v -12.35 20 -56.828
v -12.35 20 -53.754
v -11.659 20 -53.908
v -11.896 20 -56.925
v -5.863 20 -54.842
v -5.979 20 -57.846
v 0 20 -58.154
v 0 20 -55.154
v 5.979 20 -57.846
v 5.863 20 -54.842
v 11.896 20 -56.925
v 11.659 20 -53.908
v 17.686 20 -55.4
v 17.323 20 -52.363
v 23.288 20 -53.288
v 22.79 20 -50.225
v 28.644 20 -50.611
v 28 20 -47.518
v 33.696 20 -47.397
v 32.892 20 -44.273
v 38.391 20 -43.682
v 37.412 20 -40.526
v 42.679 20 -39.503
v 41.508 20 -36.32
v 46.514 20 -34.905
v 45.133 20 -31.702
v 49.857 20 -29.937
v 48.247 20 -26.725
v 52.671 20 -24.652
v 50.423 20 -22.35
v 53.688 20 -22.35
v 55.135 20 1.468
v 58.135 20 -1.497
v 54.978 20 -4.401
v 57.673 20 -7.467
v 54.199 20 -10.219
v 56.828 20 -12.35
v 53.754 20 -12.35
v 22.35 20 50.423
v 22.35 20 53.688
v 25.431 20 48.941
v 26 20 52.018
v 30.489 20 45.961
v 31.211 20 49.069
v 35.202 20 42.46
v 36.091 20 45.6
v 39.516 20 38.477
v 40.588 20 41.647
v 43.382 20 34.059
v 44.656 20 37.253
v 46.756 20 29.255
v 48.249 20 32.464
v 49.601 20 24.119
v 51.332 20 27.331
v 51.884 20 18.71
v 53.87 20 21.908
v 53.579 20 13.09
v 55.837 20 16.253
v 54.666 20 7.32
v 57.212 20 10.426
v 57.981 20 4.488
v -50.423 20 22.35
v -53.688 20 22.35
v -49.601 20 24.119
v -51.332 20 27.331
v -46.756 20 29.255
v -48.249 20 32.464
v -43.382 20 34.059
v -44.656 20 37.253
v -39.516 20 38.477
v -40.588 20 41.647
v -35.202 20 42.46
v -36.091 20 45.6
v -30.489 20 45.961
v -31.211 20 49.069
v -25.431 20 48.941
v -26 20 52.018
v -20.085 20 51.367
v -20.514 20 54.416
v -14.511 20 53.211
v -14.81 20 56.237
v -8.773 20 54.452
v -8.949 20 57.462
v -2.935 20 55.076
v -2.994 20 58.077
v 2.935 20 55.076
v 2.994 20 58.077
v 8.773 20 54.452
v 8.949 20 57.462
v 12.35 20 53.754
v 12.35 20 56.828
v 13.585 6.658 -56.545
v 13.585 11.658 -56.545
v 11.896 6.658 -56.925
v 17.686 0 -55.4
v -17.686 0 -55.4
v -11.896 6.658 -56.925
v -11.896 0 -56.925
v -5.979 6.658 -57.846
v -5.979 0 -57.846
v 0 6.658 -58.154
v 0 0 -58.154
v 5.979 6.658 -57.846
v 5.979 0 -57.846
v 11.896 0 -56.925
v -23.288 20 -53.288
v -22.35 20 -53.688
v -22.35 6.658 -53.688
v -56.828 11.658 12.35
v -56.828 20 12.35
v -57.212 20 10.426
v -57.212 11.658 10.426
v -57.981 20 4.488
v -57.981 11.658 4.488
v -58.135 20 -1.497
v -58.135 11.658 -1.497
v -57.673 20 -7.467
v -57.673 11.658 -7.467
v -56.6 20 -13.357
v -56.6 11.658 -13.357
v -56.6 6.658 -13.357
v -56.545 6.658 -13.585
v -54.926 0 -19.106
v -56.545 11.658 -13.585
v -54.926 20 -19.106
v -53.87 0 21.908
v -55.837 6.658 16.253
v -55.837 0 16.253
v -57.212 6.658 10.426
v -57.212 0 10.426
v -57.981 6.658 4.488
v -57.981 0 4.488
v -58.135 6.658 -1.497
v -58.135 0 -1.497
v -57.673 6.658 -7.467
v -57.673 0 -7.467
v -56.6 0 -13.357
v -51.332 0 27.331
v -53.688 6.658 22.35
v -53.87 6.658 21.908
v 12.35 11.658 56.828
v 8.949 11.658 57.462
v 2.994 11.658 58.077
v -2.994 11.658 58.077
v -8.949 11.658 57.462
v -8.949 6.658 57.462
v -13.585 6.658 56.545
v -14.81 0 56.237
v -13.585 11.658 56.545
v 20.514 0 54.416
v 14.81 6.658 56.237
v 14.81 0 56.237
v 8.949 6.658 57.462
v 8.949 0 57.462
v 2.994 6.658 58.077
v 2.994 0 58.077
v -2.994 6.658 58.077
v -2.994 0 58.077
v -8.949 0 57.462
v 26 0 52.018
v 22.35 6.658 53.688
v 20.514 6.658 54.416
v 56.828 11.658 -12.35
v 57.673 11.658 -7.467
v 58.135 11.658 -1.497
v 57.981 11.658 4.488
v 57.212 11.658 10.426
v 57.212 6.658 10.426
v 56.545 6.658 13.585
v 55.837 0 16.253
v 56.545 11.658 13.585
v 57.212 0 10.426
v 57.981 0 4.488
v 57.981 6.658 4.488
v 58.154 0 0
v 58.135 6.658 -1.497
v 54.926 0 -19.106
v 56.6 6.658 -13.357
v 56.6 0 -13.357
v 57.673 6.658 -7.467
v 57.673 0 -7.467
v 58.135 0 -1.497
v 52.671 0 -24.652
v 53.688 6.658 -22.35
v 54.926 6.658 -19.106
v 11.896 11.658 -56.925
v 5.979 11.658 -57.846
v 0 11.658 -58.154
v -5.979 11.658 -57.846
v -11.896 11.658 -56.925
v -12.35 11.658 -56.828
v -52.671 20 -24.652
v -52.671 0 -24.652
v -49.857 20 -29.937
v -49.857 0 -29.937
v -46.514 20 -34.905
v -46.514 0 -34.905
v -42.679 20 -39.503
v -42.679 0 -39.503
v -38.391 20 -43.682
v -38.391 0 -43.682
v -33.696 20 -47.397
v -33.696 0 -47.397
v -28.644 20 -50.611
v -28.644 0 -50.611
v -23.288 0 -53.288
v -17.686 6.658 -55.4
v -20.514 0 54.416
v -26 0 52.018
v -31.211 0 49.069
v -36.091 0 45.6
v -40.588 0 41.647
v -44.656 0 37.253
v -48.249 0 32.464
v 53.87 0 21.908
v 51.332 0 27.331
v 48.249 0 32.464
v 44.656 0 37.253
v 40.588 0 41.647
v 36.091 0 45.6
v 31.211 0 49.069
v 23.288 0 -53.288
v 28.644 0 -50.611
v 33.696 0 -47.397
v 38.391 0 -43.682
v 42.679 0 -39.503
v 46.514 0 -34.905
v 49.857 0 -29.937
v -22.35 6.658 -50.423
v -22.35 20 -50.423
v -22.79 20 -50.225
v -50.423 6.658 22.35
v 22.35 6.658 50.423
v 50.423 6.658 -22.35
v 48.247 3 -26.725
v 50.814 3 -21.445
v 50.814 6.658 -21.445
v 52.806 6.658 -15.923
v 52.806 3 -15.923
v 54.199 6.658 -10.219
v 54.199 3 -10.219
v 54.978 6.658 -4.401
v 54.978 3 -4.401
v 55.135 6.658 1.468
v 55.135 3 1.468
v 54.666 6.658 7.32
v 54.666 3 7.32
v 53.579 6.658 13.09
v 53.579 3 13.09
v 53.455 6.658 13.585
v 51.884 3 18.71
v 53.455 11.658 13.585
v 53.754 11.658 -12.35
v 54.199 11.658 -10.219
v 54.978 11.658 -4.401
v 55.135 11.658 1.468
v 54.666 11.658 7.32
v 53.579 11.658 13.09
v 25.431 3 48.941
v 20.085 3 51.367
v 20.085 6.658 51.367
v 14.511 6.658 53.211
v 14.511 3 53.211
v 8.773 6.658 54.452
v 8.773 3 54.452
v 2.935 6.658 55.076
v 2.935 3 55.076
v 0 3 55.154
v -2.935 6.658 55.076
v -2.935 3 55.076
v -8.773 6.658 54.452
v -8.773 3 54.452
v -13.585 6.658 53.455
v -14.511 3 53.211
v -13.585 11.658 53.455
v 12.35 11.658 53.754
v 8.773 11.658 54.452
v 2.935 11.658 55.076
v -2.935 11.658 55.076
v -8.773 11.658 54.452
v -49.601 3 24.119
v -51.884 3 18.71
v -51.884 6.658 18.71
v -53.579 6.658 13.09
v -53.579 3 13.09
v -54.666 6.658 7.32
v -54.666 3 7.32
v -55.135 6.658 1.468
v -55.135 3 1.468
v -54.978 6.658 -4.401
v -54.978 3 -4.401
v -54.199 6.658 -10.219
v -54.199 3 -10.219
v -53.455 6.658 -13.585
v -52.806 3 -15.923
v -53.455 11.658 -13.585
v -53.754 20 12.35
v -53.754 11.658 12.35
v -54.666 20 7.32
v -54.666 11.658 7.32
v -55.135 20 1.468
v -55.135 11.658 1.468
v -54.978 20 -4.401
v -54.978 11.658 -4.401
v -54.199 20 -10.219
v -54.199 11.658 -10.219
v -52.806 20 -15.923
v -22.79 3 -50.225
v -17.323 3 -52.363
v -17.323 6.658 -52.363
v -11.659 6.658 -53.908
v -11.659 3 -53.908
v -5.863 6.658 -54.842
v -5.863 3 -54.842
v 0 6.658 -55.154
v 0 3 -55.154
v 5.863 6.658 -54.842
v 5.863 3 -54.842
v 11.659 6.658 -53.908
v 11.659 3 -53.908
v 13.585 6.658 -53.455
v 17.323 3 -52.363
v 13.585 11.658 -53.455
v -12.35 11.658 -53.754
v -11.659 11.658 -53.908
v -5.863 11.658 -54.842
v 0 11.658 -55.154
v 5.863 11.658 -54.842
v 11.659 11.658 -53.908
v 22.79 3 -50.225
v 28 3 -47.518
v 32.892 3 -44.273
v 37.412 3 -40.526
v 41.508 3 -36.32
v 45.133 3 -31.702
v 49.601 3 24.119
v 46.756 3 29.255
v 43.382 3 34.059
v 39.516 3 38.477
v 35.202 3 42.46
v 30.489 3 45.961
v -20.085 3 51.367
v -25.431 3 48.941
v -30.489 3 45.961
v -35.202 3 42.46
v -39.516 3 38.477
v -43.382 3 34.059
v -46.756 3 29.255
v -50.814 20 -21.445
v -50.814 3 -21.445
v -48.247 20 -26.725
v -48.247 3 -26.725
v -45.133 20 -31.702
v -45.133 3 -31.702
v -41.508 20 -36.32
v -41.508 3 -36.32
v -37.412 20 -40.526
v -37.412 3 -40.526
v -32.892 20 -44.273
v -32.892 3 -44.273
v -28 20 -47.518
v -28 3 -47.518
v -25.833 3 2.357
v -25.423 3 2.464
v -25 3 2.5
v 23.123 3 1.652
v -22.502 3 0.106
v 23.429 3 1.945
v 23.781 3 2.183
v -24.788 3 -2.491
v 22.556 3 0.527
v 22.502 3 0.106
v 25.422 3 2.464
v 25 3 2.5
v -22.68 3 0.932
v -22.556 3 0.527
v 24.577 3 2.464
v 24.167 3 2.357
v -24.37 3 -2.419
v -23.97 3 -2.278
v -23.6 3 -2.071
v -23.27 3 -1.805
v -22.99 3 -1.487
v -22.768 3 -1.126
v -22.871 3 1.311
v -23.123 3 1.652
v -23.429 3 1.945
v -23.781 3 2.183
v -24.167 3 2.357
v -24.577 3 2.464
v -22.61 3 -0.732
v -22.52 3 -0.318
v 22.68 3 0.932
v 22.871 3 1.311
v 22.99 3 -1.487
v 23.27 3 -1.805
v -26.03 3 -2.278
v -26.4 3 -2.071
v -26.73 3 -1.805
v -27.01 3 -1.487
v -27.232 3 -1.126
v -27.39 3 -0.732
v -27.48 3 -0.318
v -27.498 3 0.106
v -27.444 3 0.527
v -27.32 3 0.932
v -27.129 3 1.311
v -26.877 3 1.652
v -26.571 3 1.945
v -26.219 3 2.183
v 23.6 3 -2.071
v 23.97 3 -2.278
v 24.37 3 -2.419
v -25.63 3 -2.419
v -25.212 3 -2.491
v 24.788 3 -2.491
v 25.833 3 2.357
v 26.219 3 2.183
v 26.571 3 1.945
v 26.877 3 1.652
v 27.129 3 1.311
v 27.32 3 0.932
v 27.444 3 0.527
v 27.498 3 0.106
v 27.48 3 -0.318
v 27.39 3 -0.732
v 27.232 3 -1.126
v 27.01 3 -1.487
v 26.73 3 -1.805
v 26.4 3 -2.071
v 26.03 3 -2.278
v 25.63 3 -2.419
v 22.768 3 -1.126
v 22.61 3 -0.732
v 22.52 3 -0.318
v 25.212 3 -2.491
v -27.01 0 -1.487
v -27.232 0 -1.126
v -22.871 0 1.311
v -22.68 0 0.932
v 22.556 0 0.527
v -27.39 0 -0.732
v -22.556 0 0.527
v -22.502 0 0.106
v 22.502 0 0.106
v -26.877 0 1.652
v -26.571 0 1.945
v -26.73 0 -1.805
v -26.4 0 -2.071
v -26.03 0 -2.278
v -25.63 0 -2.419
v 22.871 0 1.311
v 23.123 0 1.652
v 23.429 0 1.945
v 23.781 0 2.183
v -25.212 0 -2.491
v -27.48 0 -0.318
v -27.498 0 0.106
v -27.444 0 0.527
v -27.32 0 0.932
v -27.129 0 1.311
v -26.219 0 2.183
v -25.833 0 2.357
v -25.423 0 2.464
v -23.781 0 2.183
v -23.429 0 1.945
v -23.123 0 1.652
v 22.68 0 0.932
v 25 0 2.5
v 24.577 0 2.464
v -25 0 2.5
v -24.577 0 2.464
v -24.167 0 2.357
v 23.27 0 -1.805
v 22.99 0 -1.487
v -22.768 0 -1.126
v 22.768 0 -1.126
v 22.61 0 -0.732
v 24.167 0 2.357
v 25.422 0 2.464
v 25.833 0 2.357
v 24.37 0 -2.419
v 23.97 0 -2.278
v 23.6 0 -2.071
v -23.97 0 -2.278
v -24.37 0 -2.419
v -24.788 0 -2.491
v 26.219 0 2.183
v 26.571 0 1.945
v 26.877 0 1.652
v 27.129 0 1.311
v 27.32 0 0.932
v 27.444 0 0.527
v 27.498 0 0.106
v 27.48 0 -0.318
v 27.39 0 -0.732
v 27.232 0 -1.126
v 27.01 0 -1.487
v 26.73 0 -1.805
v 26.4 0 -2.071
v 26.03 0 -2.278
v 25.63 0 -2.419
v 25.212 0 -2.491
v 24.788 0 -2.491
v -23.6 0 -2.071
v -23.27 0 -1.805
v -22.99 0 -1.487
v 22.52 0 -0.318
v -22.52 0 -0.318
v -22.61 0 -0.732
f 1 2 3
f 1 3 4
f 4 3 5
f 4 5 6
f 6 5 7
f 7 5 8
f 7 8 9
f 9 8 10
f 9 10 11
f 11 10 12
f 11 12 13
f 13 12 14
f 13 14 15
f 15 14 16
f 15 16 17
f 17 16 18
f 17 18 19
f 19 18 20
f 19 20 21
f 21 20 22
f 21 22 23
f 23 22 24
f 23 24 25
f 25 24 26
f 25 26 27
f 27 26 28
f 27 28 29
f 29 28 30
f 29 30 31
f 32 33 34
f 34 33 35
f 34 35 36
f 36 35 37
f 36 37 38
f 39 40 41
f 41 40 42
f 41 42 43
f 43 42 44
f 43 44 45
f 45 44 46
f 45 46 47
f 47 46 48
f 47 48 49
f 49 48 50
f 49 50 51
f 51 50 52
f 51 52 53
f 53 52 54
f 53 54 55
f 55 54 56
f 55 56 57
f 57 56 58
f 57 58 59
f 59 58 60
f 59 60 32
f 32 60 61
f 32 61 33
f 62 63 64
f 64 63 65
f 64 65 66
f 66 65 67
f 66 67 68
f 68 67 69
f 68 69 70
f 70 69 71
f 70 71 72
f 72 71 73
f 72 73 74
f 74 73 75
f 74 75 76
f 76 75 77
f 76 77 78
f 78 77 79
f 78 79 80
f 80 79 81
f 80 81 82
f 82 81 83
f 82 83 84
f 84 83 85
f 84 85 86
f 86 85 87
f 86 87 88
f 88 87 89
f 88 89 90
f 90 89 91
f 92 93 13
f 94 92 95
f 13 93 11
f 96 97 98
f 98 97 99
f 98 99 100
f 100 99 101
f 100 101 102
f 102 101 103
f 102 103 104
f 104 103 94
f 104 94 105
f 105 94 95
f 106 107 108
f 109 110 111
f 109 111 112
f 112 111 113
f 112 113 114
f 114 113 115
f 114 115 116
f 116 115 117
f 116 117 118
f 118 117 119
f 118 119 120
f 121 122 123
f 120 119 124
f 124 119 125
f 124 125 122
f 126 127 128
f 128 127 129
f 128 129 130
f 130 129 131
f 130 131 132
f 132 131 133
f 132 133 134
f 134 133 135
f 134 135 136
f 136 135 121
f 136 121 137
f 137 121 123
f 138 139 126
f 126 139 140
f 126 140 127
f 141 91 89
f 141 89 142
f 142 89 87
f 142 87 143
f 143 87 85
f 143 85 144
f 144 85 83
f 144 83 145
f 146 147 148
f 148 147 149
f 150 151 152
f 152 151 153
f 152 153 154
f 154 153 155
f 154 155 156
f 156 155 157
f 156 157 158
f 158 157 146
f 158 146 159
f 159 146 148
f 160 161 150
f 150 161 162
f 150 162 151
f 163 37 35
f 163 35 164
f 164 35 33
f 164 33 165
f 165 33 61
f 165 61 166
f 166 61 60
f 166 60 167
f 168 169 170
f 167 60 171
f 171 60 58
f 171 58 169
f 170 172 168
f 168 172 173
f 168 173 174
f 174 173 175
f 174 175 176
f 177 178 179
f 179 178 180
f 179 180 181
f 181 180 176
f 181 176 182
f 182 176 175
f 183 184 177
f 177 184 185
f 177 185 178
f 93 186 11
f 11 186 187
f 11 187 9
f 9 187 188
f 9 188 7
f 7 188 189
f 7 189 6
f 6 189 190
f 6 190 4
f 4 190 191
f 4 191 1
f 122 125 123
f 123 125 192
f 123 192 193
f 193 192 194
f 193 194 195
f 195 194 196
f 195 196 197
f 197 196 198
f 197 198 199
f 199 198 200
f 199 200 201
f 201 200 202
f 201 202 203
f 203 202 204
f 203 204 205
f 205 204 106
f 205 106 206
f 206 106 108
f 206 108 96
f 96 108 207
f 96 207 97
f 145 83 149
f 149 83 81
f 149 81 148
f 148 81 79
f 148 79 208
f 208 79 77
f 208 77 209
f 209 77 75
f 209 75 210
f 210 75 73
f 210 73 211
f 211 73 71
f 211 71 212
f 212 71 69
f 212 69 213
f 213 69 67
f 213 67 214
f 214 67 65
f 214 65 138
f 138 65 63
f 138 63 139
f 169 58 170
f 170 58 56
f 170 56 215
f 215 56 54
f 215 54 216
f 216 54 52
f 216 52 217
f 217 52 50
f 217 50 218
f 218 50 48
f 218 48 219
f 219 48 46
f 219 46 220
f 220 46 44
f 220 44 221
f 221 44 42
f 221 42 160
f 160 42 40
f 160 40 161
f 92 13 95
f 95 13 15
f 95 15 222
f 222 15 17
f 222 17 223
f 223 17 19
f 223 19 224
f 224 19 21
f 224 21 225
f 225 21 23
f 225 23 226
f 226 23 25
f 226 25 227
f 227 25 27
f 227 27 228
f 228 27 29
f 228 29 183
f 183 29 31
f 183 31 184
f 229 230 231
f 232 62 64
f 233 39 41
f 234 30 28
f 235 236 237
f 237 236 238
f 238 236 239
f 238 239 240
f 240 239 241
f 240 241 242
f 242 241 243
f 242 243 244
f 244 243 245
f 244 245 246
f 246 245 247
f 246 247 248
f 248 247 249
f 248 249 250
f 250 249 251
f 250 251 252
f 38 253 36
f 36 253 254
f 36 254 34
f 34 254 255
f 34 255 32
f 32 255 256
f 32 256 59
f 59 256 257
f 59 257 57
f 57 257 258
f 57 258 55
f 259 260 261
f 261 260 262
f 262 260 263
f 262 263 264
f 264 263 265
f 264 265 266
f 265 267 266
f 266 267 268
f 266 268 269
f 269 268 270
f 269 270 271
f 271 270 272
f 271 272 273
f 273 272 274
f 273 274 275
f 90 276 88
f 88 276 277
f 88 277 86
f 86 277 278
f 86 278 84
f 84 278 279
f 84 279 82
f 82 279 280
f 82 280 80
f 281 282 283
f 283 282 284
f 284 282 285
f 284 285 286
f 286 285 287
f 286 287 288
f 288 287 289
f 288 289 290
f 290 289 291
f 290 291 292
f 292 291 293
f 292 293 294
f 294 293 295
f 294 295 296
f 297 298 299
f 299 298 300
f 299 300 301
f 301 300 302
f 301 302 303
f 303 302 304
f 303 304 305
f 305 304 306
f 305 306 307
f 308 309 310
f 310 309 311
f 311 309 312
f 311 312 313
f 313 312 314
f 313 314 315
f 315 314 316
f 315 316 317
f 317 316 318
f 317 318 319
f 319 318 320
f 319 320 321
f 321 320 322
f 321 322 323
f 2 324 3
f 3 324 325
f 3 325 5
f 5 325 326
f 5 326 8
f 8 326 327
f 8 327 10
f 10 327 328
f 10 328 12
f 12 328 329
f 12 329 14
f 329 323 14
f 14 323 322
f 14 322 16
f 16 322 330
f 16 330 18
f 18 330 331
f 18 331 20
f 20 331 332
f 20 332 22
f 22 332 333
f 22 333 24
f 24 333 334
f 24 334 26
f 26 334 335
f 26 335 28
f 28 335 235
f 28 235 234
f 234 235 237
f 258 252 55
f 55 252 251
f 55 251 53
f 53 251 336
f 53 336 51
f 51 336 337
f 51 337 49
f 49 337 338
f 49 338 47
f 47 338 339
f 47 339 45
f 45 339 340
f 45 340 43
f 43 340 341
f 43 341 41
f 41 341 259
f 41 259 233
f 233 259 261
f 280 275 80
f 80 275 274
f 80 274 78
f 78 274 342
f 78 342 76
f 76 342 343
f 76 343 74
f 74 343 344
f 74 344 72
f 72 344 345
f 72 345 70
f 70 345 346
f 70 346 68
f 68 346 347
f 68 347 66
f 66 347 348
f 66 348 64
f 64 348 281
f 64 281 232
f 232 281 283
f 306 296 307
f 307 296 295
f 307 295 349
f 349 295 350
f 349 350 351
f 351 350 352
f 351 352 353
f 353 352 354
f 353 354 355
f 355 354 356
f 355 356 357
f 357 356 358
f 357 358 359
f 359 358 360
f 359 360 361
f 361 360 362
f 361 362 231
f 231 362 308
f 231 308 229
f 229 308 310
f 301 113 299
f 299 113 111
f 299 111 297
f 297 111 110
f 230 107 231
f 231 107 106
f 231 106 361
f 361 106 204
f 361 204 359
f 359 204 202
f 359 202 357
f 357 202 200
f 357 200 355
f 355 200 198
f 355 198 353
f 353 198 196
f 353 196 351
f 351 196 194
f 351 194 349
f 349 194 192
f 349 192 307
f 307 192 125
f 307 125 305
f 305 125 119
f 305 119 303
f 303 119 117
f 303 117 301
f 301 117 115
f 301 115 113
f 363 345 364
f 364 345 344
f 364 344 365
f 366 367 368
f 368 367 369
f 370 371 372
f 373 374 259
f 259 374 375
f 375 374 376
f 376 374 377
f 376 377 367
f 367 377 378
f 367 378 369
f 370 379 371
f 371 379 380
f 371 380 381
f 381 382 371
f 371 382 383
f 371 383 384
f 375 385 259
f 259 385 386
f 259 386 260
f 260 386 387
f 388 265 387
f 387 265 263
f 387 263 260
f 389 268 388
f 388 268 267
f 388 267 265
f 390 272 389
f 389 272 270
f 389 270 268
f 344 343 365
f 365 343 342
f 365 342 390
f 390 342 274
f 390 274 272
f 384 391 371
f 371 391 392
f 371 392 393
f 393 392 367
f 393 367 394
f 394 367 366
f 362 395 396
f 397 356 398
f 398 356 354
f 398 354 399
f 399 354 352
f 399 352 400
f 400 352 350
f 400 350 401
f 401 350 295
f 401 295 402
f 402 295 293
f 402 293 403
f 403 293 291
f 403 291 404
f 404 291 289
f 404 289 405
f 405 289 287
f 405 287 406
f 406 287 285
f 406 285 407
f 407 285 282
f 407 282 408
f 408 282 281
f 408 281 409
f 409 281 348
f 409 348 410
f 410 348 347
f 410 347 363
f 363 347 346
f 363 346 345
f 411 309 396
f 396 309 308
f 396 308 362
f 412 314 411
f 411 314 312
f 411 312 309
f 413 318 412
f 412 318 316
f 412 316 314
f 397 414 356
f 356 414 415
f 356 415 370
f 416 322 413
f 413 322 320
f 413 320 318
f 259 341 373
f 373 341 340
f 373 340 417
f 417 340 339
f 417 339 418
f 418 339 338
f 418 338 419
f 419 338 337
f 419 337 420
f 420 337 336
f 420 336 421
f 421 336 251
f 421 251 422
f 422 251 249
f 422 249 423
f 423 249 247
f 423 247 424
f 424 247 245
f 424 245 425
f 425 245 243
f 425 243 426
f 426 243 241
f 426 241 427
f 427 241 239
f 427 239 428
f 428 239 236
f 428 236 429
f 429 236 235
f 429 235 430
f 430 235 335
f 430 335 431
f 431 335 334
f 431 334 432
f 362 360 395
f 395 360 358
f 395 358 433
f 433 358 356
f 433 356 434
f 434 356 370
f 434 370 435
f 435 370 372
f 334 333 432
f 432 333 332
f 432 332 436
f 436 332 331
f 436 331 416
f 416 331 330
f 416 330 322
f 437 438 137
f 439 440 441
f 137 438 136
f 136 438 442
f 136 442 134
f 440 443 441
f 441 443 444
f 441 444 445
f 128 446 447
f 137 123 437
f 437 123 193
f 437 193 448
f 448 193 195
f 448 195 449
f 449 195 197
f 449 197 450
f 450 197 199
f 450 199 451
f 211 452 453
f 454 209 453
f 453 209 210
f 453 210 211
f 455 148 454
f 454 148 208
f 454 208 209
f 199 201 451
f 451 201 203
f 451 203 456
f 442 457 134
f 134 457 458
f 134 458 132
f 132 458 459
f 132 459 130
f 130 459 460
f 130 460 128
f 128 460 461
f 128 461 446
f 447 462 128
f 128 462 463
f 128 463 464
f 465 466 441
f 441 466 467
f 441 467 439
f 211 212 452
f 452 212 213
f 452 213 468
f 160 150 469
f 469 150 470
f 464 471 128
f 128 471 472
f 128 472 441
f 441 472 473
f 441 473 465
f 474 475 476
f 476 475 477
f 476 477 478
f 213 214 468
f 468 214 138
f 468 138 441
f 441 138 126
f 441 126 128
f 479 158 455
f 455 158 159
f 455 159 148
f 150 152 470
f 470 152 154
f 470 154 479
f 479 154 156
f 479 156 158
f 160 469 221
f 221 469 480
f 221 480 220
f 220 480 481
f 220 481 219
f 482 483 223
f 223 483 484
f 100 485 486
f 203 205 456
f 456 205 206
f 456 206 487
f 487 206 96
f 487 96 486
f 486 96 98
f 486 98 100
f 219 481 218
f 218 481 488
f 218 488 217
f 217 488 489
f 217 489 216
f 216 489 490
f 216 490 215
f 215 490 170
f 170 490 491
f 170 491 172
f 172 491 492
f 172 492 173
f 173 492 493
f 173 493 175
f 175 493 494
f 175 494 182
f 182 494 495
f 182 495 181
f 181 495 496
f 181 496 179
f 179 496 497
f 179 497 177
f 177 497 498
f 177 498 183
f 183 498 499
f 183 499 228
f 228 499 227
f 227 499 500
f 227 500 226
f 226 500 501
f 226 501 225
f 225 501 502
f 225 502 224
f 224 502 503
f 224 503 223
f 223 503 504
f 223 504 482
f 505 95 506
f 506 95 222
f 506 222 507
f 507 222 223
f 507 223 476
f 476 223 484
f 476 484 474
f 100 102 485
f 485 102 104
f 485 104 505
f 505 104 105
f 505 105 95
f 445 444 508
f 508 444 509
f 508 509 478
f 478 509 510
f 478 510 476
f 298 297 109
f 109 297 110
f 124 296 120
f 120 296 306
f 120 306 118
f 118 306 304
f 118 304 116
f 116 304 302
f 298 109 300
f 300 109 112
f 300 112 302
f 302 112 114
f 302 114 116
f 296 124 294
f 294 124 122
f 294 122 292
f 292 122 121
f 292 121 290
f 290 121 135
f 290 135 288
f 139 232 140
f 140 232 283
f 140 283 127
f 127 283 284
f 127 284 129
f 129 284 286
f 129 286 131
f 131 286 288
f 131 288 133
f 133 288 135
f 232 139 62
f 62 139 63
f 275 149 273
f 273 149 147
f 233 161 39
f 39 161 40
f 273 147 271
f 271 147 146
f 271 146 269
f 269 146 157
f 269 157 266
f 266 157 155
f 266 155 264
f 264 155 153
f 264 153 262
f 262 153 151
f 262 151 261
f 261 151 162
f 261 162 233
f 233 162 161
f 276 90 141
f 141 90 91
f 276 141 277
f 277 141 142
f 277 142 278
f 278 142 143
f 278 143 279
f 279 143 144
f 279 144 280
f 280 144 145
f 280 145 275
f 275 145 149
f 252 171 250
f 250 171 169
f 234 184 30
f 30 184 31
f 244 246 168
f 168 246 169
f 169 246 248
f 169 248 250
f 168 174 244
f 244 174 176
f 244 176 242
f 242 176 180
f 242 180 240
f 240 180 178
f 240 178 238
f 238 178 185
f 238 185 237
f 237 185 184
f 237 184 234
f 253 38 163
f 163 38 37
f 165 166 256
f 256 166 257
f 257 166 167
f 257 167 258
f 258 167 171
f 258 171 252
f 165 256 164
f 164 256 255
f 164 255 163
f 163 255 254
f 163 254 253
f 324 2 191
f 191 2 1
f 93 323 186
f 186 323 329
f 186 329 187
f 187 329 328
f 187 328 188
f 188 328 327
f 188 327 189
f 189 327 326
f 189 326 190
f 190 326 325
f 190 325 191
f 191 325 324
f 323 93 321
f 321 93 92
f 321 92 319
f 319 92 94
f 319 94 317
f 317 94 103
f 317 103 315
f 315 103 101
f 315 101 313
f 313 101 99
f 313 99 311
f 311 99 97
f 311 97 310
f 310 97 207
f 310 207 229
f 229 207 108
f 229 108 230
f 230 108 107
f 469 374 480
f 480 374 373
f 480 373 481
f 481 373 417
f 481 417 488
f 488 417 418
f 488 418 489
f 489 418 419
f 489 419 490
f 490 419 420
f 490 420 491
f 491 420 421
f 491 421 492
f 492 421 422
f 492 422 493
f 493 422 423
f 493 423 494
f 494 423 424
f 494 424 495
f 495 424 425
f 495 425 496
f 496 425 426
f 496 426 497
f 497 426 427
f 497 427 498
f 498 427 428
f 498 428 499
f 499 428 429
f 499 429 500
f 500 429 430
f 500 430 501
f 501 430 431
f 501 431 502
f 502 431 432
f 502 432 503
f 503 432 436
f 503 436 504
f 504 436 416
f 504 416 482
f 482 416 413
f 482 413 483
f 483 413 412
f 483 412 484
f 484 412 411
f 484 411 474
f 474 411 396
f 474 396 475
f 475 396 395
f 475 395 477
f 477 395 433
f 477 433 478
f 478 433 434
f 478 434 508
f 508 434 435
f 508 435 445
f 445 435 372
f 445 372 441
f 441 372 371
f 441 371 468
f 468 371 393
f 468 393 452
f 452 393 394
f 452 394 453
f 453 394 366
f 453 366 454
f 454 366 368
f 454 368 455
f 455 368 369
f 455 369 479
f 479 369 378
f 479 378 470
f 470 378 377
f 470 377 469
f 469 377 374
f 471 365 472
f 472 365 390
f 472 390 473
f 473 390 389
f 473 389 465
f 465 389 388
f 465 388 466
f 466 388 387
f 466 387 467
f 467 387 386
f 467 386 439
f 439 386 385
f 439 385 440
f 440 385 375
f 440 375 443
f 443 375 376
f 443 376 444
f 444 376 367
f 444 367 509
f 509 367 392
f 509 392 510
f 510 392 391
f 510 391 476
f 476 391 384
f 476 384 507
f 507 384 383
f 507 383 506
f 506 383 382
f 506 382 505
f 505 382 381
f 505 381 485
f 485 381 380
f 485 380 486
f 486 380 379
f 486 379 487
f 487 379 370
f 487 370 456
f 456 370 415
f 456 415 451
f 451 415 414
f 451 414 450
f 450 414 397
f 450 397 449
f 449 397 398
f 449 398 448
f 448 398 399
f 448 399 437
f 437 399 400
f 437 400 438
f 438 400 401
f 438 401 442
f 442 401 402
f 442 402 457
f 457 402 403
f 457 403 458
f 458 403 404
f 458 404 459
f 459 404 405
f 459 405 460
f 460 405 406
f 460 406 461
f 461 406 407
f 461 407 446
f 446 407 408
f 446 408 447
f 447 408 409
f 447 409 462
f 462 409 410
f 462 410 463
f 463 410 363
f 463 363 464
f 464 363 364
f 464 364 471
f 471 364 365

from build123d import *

# Parameters (mm, degrees)
SKIZZE1_R                       = 55.154328933
AUFSATZ_LINEAR_AUSTRAGEN1_DEPTH = 3
SKIZZE1_2_R                     = 58.154328933
SKIZZE1_2_R_2                   = 55.154328933
LINEAR_AUSTRAGEN_D_NN1_DEPTH    = 20
SCHNITT_LINEAR_AUSTRAGEN1_DEPTH = 85.639541275
KREISMUSTER1_COUNT              = 4
SCHNITT_LINEAR_AUSTRAGEN5_REACH = 85.981
SKIZZE4_R                       = 2.5


with BuildPart() as part:
    # Skizze1 → Aufsatz-Linear austragen1 (new body)
    with BuildSketch(Plane(origin=(0, 0, 0), x_dir=(1, 0, 0), z_dir=(0, 1, 0))):
        Circle(SKIZZE1_R)
    extrude(amount=AUFSATZ_LINEAR_AUSTRAGEN1_DEPTH)

    # Skizze1_2 → Linear-Austragen-D_nn1 (add)
    with BuildSketch(Plane(origin=(0, 0, 0), x_dir=(1, 0, 0), z_dir=(0, 1, 0))):
        Circle(SKIZZE1_2_R)
        Circle(SKIZZE1_2_R_2, mode=Mode.SUBTRACT)
    extrude(amount=LINEAR_AUSTRAGEN_D_NN1_DEPTH)

    # Skizze2 → Schnitt-Linear austragen1 (cut, through all)
    with BuildSketch(Plane(origin=(0, 0, 0), x_dir=(0, 0, -1), z_dir=(1, 0, 0))):
        Polygon((-12.349848993, 20), (-22.349848993, 20), (-22.349848993, 6.658478459), (13.585202329, 6.658478459), (13.585202329, 11.658478459), (-12.349848993, 11.658478459), align=None)
    schnitt_linear_austragen1 = extrude(amount=-SCHNITT_LINEAR_AUSTRAGEN1_DEPTH, mode=Mode.SUBTRACT)

    # Kreismuster1: Schnitt-Linear austragen1 ×4 about axis
    kreismuster1_axis = Axis((0, 3, 0), (0, -1, 0))
    for i in range(1, KREISMUSTER1_COUNT):
        add(schnitt_linear_austragen1.rotate(kreismuster1_axis, i * 360 / KREISMUSTER1_COUNT), mode=Mode.SUBTRACT)

    # Skizze4 → Schnitt-Linear austragen5 (cut, up to next)
    with BuildSketch(Plane(origin=(0, 3, 0), x_dir=(1, 0, 0), z_dir=(0, 1, 0)), mode=Mode.PRIVATE) as schnitt_linear_austragen5_sk1:
        with Locations((-25, 0)):
            Circle(SKIZZE4_R)
    schnitt_linear_austragen5_tool1 = extrude(schnitt_linear_austragen5_sk1.sketch, amount=-SCHNITT_LINEAR_AUSTRAGEN5_REACH, mode=Mode.PRIVATE) & part.part
    # Skizze4 → Schnitt-Linear austragen5 (cut, up to next)
    with BuildSketch(Plane(origin=(0, 3, 0), x_dir=(1, 0, 0), z_dir=(0, 1, 0)), mode=Mode.PRIVATE) as schnitt_linear_austragen5_sk2:
        with Locations((25, 0)):
            Circle(SKIZZE4_R)
    schnitt_linear_austragen5_tool2 = extrude(schnitt_linear_austragen5_sk2.sketch, amount=-SCHNITT_LINEAR_AUSTRAGEN5_REACH, mode=Mode.PRIVATE) & part.part
    add(schnitt_linear_austragen5_tool1.solids().sort_by_distance((-25, 3, 0))[0], mode=Mode.SUBTRACT)
    add(schnitt_linear_austragen5_tool2.solids().sort_by_distance((25, 3, 0))[0], mode=Mode.SUBTRACT)


solid = part.part
